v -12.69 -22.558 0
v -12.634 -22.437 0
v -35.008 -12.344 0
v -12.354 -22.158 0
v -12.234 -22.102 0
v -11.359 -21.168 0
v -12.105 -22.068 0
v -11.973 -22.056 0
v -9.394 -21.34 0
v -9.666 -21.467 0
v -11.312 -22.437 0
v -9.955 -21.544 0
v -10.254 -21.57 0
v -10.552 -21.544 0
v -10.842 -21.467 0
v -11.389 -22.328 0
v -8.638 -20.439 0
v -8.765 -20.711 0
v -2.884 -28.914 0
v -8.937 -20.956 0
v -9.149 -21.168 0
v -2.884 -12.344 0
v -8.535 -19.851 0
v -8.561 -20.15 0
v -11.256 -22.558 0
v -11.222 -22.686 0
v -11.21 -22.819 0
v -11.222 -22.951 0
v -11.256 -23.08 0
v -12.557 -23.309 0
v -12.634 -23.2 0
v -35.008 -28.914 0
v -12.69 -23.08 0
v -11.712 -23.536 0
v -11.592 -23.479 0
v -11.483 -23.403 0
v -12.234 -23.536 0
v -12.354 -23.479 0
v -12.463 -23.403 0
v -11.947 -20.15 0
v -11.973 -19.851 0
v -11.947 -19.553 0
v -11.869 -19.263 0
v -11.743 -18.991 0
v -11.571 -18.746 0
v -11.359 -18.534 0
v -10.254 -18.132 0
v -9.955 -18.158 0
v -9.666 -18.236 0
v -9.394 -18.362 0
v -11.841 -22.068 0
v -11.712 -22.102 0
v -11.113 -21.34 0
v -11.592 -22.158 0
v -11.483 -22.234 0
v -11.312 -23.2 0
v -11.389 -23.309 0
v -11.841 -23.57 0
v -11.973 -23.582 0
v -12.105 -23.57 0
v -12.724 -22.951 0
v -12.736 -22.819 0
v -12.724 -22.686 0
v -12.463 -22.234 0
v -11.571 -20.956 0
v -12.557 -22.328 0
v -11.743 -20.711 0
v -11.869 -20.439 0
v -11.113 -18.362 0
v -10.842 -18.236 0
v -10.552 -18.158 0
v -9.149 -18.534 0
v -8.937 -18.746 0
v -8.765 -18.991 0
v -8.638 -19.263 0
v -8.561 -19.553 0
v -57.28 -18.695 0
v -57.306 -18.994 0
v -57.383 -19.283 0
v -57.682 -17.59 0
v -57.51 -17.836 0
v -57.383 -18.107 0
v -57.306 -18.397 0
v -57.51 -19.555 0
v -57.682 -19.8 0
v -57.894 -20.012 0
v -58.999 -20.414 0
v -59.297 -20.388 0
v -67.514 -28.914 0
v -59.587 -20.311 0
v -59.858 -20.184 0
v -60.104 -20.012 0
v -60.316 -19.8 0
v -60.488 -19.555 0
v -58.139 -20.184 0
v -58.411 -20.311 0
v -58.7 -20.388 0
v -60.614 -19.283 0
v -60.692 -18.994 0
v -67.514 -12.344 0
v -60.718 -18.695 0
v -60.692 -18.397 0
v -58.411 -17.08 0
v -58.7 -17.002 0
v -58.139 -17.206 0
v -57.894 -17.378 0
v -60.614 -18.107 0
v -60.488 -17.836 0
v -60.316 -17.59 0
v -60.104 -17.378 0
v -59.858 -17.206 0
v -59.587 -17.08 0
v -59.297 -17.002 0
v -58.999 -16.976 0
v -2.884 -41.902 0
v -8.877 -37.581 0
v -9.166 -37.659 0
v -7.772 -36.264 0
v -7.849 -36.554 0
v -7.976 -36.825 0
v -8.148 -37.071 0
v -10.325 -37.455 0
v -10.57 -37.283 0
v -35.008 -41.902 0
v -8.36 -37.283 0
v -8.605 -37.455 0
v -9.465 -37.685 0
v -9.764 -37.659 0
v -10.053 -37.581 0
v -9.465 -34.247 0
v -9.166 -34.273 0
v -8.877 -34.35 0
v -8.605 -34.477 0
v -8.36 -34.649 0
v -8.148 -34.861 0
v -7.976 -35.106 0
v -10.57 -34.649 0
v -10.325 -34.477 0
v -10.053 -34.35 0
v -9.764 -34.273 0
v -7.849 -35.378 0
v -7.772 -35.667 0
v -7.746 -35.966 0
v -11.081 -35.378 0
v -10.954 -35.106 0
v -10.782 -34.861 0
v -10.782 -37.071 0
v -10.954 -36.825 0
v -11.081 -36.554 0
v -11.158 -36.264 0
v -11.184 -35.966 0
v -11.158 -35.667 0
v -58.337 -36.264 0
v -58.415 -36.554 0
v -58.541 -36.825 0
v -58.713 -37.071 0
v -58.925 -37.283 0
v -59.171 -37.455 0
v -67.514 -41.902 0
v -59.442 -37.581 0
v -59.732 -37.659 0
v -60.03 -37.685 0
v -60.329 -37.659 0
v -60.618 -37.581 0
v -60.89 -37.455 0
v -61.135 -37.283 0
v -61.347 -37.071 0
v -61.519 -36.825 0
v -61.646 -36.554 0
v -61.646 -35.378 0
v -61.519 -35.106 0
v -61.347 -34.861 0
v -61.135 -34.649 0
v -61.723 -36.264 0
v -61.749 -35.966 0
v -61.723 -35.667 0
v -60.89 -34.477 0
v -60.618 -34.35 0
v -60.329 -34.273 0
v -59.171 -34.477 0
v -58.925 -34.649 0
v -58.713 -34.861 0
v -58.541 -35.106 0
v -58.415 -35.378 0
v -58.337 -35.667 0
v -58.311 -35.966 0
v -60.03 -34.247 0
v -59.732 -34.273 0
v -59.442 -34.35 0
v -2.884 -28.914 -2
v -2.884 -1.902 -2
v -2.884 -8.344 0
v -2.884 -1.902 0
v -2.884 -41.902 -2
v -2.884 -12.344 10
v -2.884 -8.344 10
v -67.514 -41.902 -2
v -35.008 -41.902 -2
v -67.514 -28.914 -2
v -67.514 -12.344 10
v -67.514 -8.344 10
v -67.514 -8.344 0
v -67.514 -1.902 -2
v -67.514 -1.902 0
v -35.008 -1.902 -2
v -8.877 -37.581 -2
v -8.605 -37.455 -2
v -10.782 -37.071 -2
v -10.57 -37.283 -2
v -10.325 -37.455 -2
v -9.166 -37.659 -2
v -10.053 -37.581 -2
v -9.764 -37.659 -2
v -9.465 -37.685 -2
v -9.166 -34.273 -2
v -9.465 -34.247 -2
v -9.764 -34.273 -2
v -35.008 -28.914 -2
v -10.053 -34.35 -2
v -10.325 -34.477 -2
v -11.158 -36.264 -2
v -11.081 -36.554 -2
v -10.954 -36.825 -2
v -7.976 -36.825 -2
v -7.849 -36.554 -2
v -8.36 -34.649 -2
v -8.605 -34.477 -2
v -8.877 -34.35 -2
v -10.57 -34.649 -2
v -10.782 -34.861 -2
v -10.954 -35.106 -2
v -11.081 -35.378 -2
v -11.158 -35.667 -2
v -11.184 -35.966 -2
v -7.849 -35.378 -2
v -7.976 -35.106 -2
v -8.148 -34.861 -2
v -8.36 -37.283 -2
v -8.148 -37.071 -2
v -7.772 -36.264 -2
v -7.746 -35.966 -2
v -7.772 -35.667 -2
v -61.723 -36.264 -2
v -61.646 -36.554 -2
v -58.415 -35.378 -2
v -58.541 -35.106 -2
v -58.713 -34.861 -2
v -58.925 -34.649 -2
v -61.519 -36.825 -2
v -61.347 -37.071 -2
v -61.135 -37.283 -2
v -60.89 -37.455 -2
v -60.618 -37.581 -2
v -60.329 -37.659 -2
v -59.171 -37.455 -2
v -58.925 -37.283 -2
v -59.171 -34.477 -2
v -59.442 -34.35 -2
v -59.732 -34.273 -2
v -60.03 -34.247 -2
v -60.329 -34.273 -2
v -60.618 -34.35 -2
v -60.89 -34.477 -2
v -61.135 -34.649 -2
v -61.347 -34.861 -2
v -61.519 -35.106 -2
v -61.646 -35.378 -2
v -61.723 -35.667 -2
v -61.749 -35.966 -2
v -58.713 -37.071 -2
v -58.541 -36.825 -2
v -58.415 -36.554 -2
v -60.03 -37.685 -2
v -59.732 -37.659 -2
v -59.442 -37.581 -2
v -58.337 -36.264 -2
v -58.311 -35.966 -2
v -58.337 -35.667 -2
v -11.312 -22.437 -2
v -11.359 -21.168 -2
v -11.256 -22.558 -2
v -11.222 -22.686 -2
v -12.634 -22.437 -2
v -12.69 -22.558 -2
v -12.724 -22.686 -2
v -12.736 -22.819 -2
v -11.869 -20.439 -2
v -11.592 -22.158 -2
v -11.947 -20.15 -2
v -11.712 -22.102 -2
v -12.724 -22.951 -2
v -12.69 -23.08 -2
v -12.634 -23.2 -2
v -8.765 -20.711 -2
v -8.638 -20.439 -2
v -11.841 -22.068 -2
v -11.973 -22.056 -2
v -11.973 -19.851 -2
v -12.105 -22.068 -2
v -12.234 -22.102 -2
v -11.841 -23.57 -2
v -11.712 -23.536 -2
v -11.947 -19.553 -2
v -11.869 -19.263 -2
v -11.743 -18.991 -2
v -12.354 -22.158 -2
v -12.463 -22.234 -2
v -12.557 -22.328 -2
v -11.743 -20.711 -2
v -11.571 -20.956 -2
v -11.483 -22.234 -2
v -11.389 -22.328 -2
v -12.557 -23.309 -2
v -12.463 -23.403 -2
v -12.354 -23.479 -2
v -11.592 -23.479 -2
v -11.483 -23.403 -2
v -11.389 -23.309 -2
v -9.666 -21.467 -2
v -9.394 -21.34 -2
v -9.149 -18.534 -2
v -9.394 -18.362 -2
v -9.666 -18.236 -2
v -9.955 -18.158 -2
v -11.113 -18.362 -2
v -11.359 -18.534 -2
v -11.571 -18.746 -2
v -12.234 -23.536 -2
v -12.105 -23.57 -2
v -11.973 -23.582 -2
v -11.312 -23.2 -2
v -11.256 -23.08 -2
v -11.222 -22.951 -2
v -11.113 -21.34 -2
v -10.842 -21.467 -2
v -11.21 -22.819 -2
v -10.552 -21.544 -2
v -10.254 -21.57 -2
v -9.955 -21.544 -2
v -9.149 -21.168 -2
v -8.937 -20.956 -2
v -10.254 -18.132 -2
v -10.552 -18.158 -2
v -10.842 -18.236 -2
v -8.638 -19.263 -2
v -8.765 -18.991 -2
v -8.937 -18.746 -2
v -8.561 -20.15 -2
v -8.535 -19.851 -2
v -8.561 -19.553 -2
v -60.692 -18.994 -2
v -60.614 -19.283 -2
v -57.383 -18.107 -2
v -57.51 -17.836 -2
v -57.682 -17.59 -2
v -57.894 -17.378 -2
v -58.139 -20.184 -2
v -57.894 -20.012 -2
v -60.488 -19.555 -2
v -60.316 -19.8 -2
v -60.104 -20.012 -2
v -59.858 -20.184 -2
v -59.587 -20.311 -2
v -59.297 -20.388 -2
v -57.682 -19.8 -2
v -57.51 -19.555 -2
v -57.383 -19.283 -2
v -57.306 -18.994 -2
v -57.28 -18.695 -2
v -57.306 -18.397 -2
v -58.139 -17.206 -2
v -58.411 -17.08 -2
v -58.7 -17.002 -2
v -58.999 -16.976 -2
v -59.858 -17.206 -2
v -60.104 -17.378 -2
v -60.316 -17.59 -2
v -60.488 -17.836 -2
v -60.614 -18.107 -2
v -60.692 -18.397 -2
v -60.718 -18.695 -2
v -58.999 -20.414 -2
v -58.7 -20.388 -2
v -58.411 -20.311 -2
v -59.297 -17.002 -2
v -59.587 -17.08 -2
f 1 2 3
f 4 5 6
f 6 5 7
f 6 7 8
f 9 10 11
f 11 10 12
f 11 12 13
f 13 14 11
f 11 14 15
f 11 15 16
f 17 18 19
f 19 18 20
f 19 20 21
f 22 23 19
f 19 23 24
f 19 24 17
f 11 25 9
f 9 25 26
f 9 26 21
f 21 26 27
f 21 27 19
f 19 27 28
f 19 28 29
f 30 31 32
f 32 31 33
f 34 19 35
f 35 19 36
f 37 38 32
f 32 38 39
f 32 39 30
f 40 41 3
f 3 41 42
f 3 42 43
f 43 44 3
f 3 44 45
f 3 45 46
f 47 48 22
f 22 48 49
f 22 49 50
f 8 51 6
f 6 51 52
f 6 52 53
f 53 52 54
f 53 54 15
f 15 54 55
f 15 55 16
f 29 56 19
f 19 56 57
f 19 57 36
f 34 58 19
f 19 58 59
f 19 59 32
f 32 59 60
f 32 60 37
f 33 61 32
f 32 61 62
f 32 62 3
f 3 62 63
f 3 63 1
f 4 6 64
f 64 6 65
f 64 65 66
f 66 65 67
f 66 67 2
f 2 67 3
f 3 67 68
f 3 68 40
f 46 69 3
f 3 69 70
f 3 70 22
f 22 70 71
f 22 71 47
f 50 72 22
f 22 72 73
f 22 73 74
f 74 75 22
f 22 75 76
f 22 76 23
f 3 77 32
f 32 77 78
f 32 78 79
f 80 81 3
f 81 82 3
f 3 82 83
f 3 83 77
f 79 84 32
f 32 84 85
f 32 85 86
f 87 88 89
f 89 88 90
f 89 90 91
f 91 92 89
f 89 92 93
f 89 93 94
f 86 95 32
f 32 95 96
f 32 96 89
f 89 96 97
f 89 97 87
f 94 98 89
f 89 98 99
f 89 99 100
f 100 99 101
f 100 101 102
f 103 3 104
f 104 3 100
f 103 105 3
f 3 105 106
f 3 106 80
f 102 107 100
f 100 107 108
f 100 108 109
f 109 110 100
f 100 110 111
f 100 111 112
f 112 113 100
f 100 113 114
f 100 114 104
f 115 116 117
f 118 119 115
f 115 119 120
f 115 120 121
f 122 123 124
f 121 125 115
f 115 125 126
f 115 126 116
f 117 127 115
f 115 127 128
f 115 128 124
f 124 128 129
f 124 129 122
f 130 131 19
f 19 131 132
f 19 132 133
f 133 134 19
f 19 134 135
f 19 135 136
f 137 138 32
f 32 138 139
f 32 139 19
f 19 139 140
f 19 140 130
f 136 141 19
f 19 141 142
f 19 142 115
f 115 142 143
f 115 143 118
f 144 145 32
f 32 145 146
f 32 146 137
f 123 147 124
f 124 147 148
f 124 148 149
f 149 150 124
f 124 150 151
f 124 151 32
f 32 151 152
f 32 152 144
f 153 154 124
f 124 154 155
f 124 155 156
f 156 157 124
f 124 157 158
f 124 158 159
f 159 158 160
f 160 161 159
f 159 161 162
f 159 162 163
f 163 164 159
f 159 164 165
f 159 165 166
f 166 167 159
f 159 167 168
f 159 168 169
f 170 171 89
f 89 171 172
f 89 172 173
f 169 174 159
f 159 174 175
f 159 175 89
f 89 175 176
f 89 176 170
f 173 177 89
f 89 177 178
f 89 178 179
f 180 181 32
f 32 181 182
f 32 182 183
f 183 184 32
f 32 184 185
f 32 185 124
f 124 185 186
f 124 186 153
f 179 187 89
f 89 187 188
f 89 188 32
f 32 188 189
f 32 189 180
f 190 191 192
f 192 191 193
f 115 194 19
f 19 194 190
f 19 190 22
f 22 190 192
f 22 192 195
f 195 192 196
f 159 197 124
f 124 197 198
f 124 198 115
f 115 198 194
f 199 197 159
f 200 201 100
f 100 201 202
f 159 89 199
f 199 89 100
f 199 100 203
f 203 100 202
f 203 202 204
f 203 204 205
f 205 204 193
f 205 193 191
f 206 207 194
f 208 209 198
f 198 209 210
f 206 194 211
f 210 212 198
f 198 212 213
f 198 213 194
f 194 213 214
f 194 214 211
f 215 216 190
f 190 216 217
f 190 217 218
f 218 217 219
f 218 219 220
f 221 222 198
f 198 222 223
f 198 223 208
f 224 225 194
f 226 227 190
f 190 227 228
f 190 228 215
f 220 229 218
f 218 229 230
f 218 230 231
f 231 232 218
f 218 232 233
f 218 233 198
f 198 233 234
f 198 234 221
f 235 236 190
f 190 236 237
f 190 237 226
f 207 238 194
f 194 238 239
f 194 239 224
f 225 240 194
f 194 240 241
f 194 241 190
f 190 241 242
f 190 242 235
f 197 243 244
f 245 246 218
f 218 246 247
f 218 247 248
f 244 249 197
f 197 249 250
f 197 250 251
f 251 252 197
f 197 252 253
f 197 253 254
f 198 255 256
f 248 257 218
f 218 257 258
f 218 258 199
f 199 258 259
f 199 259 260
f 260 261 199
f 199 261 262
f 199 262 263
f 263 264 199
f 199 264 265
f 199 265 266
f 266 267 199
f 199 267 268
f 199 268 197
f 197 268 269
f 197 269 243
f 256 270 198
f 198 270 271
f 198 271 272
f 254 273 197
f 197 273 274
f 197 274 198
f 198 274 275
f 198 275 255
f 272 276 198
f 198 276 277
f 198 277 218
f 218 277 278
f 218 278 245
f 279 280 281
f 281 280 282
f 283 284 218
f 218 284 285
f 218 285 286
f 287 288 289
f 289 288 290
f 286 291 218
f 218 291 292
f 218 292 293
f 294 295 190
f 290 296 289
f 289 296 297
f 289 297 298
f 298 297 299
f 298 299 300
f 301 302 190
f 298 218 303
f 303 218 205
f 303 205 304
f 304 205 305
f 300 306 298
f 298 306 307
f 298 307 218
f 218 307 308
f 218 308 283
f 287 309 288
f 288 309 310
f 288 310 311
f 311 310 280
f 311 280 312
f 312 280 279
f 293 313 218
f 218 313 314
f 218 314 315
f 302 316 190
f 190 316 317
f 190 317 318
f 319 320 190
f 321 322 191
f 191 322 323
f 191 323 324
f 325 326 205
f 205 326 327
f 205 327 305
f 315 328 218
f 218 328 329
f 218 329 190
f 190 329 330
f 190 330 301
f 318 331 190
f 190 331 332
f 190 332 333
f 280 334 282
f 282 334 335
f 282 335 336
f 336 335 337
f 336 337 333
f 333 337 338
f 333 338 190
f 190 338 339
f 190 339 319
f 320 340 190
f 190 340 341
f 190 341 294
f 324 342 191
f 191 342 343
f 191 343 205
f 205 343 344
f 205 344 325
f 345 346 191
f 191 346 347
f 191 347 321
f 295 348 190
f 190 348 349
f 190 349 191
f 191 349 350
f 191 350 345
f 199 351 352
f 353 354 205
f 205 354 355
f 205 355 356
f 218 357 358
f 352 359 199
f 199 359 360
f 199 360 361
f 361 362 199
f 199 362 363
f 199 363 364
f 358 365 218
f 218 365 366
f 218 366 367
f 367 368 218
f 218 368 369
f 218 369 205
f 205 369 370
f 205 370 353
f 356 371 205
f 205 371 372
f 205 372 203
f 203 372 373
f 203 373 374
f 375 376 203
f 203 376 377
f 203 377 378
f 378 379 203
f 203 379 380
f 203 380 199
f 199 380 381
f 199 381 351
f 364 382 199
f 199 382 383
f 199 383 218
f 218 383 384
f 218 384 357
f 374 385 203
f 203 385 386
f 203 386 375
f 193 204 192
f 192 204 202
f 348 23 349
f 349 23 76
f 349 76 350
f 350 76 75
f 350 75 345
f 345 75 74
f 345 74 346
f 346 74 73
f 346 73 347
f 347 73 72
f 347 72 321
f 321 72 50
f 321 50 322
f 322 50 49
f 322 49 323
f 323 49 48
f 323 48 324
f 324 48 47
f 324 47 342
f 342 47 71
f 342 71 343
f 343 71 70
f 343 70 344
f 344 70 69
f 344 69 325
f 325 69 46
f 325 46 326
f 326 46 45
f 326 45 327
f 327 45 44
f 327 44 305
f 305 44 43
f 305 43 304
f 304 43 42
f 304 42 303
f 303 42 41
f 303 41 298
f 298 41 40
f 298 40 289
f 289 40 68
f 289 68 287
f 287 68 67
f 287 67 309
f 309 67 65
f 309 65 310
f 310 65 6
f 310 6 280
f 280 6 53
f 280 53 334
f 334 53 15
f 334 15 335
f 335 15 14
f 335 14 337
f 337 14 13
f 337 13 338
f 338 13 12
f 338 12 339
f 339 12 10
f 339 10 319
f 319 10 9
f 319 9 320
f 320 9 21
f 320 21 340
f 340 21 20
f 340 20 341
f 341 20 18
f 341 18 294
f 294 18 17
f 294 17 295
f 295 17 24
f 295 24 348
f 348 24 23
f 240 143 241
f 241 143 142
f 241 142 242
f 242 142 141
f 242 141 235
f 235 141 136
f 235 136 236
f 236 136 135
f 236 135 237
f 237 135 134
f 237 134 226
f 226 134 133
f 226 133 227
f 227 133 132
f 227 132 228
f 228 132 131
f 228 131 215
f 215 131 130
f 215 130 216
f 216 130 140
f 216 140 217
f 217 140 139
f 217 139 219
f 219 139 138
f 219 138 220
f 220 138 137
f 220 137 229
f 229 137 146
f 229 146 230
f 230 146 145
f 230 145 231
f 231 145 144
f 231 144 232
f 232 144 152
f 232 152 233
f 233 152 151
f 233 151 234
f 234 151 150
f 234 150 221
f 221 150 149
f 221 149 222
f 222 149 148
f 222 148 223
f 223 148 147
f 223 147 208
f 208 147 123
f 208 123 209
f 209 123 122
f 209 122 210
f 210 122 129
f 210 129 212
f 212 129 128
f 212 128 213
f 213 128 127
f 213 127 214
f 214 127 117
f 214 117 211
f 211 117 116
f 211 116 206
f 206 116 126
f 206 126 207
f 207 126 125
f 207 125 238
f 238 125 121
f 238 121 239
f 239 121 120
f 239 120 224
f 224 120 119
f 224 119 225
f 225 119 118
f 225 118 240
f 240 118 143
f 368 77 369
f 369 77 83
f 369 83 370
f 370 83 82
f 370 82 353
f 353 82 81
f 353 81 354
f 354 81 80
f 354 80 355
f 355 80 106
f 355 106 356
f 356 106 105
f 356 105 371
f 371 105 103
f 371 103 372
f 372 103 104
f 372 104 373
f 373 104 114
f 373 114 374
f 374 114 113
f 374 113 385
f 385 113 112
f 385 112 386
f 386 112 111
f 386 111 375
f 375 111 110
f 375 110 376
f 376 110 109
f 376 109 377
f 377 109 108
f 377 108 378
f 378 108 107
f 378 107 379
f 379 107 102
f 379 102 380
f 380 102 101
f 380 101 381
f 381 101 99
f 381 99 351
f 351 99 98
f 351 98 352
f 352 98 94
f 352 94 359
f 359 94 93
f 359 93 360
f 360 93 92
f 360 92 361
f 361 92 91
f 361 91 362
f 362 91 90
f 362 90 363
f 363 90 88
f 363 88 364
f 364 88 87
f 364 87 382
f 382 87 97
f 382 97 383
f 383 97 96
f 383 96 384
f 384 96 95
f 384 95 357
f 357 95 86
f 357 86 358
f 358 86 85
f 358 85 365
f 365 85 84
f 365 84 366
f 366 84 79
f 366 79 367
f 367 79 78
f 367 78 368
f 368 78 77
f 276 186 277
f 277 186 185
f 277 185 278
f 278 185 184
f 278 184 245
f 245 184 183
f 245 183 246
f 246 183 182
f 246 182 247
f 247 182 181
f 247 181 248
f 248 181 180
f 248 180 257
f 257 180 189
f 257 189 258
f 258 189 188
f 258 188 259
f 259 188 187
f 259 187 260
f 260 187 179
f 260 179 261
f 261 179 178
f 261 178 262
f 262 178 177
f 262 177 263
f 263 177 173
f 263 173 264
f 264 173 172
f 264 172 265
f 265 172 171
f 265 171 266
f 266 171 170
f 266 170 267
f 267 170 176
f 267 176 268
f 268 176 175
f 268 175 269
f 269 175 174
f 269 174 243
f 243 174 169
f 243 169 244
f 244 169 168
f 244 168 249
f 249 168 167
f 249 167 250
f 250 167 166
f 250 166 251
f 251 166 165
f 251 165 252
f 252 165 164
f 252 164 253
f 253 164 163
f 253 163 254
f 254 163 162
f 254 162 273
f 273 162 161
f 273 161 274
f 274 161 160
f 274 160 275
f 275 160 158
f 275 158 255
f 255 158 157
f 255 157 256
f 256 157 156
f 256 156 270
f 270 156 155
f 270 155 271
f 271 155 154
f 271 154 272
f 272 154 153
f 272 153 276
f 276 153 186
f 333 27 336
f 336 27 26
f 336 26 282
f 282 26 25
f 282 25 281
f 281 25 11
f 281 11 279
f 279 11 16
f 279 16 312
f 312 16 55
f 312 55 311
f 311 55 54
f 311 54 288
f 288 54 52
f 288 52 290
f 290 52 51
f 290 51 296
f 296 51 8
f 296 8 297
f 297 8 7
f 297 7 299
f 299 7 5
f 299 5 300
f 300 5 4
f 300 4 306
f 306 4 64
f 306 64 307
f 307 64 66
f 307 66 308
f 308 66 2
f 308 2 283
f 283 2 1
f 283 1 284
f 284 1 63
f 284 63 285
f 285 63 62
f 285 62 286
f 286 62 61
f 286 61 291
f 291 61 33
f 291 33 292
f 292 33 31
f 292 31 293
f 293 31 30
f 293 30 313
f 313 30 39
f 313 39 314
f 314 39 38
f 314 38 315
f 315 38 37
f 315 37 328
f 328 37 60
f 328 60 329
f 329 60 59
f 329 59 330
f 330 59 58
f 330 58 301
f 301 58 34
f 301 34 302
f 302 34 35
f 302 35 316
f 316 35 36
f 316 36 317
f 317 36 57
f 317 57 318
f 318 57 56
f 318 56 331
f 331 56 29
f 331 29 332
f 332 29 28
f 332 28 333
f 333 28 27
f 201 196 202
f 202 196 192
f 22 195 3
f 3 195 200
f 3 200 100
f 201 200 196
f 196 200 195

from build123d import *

# Parameters (mm, degrees)
ESQUISSE14_W       = 64.629945491
ESQUISSE14_H       = 40
ESQUISSE14_R       = 1.719219897
ESQUISSE14_R_2     = 0.762879998
BOSS_EXTRU_1_DEPTH = 2
ESQUISSE15_W       = 64.629945491
ESQUISSE15_H       = 4
BOSS_EXTRU_2_DEPTH = 10


with BuildPart() as part:
    # Esquisse14 → Boss.-Extru.1 (new body)
    with BuildSketch(Plane.XY):
        with Locations((-35.198967366, -21.902230173)):
            Rectangle(ESQUISSE14_W, ESQUISSE14_H)
        with Locations((-10.253804476, -19.851102207)):
            Circle(ESQUISSE14_R, mode=Mode.SUBTRACT)
        with Locations((-9.464985935, -35.965799335)):
            Circle(ESQUISSE14_R, mode=Mode.SUBTRACT)
        with Locations((-58.998745092, -18.695161475)):
            Circle(ESQUISSE14_R, mode=Mode.SUBTRACT)
        with Locations((-60.03027703, -35.965799335)):
            Circle(ESQUISSE14_R, mode=Mode.SUBTRACT)
        with Locations((-11.973024373, -22.81882365)):
            Circle(ESQUISSE14_R_2, mode=Mode.SUBTRACT)
    extrude(amount=-BOSS_EXTRU_1_DEPTH)

    # Esquisse15 → Boss.-Extru.2 (add)
    with BuildSketch(Plane.XY):
        with Locations((-35.198967366, -10.343644154)):
            Rectangle(ESQUISSE15_W, ESQUISSE15_H)
    extrude(amount=BOSS_EXTRU_2_DEPTH)


solid = part.part
